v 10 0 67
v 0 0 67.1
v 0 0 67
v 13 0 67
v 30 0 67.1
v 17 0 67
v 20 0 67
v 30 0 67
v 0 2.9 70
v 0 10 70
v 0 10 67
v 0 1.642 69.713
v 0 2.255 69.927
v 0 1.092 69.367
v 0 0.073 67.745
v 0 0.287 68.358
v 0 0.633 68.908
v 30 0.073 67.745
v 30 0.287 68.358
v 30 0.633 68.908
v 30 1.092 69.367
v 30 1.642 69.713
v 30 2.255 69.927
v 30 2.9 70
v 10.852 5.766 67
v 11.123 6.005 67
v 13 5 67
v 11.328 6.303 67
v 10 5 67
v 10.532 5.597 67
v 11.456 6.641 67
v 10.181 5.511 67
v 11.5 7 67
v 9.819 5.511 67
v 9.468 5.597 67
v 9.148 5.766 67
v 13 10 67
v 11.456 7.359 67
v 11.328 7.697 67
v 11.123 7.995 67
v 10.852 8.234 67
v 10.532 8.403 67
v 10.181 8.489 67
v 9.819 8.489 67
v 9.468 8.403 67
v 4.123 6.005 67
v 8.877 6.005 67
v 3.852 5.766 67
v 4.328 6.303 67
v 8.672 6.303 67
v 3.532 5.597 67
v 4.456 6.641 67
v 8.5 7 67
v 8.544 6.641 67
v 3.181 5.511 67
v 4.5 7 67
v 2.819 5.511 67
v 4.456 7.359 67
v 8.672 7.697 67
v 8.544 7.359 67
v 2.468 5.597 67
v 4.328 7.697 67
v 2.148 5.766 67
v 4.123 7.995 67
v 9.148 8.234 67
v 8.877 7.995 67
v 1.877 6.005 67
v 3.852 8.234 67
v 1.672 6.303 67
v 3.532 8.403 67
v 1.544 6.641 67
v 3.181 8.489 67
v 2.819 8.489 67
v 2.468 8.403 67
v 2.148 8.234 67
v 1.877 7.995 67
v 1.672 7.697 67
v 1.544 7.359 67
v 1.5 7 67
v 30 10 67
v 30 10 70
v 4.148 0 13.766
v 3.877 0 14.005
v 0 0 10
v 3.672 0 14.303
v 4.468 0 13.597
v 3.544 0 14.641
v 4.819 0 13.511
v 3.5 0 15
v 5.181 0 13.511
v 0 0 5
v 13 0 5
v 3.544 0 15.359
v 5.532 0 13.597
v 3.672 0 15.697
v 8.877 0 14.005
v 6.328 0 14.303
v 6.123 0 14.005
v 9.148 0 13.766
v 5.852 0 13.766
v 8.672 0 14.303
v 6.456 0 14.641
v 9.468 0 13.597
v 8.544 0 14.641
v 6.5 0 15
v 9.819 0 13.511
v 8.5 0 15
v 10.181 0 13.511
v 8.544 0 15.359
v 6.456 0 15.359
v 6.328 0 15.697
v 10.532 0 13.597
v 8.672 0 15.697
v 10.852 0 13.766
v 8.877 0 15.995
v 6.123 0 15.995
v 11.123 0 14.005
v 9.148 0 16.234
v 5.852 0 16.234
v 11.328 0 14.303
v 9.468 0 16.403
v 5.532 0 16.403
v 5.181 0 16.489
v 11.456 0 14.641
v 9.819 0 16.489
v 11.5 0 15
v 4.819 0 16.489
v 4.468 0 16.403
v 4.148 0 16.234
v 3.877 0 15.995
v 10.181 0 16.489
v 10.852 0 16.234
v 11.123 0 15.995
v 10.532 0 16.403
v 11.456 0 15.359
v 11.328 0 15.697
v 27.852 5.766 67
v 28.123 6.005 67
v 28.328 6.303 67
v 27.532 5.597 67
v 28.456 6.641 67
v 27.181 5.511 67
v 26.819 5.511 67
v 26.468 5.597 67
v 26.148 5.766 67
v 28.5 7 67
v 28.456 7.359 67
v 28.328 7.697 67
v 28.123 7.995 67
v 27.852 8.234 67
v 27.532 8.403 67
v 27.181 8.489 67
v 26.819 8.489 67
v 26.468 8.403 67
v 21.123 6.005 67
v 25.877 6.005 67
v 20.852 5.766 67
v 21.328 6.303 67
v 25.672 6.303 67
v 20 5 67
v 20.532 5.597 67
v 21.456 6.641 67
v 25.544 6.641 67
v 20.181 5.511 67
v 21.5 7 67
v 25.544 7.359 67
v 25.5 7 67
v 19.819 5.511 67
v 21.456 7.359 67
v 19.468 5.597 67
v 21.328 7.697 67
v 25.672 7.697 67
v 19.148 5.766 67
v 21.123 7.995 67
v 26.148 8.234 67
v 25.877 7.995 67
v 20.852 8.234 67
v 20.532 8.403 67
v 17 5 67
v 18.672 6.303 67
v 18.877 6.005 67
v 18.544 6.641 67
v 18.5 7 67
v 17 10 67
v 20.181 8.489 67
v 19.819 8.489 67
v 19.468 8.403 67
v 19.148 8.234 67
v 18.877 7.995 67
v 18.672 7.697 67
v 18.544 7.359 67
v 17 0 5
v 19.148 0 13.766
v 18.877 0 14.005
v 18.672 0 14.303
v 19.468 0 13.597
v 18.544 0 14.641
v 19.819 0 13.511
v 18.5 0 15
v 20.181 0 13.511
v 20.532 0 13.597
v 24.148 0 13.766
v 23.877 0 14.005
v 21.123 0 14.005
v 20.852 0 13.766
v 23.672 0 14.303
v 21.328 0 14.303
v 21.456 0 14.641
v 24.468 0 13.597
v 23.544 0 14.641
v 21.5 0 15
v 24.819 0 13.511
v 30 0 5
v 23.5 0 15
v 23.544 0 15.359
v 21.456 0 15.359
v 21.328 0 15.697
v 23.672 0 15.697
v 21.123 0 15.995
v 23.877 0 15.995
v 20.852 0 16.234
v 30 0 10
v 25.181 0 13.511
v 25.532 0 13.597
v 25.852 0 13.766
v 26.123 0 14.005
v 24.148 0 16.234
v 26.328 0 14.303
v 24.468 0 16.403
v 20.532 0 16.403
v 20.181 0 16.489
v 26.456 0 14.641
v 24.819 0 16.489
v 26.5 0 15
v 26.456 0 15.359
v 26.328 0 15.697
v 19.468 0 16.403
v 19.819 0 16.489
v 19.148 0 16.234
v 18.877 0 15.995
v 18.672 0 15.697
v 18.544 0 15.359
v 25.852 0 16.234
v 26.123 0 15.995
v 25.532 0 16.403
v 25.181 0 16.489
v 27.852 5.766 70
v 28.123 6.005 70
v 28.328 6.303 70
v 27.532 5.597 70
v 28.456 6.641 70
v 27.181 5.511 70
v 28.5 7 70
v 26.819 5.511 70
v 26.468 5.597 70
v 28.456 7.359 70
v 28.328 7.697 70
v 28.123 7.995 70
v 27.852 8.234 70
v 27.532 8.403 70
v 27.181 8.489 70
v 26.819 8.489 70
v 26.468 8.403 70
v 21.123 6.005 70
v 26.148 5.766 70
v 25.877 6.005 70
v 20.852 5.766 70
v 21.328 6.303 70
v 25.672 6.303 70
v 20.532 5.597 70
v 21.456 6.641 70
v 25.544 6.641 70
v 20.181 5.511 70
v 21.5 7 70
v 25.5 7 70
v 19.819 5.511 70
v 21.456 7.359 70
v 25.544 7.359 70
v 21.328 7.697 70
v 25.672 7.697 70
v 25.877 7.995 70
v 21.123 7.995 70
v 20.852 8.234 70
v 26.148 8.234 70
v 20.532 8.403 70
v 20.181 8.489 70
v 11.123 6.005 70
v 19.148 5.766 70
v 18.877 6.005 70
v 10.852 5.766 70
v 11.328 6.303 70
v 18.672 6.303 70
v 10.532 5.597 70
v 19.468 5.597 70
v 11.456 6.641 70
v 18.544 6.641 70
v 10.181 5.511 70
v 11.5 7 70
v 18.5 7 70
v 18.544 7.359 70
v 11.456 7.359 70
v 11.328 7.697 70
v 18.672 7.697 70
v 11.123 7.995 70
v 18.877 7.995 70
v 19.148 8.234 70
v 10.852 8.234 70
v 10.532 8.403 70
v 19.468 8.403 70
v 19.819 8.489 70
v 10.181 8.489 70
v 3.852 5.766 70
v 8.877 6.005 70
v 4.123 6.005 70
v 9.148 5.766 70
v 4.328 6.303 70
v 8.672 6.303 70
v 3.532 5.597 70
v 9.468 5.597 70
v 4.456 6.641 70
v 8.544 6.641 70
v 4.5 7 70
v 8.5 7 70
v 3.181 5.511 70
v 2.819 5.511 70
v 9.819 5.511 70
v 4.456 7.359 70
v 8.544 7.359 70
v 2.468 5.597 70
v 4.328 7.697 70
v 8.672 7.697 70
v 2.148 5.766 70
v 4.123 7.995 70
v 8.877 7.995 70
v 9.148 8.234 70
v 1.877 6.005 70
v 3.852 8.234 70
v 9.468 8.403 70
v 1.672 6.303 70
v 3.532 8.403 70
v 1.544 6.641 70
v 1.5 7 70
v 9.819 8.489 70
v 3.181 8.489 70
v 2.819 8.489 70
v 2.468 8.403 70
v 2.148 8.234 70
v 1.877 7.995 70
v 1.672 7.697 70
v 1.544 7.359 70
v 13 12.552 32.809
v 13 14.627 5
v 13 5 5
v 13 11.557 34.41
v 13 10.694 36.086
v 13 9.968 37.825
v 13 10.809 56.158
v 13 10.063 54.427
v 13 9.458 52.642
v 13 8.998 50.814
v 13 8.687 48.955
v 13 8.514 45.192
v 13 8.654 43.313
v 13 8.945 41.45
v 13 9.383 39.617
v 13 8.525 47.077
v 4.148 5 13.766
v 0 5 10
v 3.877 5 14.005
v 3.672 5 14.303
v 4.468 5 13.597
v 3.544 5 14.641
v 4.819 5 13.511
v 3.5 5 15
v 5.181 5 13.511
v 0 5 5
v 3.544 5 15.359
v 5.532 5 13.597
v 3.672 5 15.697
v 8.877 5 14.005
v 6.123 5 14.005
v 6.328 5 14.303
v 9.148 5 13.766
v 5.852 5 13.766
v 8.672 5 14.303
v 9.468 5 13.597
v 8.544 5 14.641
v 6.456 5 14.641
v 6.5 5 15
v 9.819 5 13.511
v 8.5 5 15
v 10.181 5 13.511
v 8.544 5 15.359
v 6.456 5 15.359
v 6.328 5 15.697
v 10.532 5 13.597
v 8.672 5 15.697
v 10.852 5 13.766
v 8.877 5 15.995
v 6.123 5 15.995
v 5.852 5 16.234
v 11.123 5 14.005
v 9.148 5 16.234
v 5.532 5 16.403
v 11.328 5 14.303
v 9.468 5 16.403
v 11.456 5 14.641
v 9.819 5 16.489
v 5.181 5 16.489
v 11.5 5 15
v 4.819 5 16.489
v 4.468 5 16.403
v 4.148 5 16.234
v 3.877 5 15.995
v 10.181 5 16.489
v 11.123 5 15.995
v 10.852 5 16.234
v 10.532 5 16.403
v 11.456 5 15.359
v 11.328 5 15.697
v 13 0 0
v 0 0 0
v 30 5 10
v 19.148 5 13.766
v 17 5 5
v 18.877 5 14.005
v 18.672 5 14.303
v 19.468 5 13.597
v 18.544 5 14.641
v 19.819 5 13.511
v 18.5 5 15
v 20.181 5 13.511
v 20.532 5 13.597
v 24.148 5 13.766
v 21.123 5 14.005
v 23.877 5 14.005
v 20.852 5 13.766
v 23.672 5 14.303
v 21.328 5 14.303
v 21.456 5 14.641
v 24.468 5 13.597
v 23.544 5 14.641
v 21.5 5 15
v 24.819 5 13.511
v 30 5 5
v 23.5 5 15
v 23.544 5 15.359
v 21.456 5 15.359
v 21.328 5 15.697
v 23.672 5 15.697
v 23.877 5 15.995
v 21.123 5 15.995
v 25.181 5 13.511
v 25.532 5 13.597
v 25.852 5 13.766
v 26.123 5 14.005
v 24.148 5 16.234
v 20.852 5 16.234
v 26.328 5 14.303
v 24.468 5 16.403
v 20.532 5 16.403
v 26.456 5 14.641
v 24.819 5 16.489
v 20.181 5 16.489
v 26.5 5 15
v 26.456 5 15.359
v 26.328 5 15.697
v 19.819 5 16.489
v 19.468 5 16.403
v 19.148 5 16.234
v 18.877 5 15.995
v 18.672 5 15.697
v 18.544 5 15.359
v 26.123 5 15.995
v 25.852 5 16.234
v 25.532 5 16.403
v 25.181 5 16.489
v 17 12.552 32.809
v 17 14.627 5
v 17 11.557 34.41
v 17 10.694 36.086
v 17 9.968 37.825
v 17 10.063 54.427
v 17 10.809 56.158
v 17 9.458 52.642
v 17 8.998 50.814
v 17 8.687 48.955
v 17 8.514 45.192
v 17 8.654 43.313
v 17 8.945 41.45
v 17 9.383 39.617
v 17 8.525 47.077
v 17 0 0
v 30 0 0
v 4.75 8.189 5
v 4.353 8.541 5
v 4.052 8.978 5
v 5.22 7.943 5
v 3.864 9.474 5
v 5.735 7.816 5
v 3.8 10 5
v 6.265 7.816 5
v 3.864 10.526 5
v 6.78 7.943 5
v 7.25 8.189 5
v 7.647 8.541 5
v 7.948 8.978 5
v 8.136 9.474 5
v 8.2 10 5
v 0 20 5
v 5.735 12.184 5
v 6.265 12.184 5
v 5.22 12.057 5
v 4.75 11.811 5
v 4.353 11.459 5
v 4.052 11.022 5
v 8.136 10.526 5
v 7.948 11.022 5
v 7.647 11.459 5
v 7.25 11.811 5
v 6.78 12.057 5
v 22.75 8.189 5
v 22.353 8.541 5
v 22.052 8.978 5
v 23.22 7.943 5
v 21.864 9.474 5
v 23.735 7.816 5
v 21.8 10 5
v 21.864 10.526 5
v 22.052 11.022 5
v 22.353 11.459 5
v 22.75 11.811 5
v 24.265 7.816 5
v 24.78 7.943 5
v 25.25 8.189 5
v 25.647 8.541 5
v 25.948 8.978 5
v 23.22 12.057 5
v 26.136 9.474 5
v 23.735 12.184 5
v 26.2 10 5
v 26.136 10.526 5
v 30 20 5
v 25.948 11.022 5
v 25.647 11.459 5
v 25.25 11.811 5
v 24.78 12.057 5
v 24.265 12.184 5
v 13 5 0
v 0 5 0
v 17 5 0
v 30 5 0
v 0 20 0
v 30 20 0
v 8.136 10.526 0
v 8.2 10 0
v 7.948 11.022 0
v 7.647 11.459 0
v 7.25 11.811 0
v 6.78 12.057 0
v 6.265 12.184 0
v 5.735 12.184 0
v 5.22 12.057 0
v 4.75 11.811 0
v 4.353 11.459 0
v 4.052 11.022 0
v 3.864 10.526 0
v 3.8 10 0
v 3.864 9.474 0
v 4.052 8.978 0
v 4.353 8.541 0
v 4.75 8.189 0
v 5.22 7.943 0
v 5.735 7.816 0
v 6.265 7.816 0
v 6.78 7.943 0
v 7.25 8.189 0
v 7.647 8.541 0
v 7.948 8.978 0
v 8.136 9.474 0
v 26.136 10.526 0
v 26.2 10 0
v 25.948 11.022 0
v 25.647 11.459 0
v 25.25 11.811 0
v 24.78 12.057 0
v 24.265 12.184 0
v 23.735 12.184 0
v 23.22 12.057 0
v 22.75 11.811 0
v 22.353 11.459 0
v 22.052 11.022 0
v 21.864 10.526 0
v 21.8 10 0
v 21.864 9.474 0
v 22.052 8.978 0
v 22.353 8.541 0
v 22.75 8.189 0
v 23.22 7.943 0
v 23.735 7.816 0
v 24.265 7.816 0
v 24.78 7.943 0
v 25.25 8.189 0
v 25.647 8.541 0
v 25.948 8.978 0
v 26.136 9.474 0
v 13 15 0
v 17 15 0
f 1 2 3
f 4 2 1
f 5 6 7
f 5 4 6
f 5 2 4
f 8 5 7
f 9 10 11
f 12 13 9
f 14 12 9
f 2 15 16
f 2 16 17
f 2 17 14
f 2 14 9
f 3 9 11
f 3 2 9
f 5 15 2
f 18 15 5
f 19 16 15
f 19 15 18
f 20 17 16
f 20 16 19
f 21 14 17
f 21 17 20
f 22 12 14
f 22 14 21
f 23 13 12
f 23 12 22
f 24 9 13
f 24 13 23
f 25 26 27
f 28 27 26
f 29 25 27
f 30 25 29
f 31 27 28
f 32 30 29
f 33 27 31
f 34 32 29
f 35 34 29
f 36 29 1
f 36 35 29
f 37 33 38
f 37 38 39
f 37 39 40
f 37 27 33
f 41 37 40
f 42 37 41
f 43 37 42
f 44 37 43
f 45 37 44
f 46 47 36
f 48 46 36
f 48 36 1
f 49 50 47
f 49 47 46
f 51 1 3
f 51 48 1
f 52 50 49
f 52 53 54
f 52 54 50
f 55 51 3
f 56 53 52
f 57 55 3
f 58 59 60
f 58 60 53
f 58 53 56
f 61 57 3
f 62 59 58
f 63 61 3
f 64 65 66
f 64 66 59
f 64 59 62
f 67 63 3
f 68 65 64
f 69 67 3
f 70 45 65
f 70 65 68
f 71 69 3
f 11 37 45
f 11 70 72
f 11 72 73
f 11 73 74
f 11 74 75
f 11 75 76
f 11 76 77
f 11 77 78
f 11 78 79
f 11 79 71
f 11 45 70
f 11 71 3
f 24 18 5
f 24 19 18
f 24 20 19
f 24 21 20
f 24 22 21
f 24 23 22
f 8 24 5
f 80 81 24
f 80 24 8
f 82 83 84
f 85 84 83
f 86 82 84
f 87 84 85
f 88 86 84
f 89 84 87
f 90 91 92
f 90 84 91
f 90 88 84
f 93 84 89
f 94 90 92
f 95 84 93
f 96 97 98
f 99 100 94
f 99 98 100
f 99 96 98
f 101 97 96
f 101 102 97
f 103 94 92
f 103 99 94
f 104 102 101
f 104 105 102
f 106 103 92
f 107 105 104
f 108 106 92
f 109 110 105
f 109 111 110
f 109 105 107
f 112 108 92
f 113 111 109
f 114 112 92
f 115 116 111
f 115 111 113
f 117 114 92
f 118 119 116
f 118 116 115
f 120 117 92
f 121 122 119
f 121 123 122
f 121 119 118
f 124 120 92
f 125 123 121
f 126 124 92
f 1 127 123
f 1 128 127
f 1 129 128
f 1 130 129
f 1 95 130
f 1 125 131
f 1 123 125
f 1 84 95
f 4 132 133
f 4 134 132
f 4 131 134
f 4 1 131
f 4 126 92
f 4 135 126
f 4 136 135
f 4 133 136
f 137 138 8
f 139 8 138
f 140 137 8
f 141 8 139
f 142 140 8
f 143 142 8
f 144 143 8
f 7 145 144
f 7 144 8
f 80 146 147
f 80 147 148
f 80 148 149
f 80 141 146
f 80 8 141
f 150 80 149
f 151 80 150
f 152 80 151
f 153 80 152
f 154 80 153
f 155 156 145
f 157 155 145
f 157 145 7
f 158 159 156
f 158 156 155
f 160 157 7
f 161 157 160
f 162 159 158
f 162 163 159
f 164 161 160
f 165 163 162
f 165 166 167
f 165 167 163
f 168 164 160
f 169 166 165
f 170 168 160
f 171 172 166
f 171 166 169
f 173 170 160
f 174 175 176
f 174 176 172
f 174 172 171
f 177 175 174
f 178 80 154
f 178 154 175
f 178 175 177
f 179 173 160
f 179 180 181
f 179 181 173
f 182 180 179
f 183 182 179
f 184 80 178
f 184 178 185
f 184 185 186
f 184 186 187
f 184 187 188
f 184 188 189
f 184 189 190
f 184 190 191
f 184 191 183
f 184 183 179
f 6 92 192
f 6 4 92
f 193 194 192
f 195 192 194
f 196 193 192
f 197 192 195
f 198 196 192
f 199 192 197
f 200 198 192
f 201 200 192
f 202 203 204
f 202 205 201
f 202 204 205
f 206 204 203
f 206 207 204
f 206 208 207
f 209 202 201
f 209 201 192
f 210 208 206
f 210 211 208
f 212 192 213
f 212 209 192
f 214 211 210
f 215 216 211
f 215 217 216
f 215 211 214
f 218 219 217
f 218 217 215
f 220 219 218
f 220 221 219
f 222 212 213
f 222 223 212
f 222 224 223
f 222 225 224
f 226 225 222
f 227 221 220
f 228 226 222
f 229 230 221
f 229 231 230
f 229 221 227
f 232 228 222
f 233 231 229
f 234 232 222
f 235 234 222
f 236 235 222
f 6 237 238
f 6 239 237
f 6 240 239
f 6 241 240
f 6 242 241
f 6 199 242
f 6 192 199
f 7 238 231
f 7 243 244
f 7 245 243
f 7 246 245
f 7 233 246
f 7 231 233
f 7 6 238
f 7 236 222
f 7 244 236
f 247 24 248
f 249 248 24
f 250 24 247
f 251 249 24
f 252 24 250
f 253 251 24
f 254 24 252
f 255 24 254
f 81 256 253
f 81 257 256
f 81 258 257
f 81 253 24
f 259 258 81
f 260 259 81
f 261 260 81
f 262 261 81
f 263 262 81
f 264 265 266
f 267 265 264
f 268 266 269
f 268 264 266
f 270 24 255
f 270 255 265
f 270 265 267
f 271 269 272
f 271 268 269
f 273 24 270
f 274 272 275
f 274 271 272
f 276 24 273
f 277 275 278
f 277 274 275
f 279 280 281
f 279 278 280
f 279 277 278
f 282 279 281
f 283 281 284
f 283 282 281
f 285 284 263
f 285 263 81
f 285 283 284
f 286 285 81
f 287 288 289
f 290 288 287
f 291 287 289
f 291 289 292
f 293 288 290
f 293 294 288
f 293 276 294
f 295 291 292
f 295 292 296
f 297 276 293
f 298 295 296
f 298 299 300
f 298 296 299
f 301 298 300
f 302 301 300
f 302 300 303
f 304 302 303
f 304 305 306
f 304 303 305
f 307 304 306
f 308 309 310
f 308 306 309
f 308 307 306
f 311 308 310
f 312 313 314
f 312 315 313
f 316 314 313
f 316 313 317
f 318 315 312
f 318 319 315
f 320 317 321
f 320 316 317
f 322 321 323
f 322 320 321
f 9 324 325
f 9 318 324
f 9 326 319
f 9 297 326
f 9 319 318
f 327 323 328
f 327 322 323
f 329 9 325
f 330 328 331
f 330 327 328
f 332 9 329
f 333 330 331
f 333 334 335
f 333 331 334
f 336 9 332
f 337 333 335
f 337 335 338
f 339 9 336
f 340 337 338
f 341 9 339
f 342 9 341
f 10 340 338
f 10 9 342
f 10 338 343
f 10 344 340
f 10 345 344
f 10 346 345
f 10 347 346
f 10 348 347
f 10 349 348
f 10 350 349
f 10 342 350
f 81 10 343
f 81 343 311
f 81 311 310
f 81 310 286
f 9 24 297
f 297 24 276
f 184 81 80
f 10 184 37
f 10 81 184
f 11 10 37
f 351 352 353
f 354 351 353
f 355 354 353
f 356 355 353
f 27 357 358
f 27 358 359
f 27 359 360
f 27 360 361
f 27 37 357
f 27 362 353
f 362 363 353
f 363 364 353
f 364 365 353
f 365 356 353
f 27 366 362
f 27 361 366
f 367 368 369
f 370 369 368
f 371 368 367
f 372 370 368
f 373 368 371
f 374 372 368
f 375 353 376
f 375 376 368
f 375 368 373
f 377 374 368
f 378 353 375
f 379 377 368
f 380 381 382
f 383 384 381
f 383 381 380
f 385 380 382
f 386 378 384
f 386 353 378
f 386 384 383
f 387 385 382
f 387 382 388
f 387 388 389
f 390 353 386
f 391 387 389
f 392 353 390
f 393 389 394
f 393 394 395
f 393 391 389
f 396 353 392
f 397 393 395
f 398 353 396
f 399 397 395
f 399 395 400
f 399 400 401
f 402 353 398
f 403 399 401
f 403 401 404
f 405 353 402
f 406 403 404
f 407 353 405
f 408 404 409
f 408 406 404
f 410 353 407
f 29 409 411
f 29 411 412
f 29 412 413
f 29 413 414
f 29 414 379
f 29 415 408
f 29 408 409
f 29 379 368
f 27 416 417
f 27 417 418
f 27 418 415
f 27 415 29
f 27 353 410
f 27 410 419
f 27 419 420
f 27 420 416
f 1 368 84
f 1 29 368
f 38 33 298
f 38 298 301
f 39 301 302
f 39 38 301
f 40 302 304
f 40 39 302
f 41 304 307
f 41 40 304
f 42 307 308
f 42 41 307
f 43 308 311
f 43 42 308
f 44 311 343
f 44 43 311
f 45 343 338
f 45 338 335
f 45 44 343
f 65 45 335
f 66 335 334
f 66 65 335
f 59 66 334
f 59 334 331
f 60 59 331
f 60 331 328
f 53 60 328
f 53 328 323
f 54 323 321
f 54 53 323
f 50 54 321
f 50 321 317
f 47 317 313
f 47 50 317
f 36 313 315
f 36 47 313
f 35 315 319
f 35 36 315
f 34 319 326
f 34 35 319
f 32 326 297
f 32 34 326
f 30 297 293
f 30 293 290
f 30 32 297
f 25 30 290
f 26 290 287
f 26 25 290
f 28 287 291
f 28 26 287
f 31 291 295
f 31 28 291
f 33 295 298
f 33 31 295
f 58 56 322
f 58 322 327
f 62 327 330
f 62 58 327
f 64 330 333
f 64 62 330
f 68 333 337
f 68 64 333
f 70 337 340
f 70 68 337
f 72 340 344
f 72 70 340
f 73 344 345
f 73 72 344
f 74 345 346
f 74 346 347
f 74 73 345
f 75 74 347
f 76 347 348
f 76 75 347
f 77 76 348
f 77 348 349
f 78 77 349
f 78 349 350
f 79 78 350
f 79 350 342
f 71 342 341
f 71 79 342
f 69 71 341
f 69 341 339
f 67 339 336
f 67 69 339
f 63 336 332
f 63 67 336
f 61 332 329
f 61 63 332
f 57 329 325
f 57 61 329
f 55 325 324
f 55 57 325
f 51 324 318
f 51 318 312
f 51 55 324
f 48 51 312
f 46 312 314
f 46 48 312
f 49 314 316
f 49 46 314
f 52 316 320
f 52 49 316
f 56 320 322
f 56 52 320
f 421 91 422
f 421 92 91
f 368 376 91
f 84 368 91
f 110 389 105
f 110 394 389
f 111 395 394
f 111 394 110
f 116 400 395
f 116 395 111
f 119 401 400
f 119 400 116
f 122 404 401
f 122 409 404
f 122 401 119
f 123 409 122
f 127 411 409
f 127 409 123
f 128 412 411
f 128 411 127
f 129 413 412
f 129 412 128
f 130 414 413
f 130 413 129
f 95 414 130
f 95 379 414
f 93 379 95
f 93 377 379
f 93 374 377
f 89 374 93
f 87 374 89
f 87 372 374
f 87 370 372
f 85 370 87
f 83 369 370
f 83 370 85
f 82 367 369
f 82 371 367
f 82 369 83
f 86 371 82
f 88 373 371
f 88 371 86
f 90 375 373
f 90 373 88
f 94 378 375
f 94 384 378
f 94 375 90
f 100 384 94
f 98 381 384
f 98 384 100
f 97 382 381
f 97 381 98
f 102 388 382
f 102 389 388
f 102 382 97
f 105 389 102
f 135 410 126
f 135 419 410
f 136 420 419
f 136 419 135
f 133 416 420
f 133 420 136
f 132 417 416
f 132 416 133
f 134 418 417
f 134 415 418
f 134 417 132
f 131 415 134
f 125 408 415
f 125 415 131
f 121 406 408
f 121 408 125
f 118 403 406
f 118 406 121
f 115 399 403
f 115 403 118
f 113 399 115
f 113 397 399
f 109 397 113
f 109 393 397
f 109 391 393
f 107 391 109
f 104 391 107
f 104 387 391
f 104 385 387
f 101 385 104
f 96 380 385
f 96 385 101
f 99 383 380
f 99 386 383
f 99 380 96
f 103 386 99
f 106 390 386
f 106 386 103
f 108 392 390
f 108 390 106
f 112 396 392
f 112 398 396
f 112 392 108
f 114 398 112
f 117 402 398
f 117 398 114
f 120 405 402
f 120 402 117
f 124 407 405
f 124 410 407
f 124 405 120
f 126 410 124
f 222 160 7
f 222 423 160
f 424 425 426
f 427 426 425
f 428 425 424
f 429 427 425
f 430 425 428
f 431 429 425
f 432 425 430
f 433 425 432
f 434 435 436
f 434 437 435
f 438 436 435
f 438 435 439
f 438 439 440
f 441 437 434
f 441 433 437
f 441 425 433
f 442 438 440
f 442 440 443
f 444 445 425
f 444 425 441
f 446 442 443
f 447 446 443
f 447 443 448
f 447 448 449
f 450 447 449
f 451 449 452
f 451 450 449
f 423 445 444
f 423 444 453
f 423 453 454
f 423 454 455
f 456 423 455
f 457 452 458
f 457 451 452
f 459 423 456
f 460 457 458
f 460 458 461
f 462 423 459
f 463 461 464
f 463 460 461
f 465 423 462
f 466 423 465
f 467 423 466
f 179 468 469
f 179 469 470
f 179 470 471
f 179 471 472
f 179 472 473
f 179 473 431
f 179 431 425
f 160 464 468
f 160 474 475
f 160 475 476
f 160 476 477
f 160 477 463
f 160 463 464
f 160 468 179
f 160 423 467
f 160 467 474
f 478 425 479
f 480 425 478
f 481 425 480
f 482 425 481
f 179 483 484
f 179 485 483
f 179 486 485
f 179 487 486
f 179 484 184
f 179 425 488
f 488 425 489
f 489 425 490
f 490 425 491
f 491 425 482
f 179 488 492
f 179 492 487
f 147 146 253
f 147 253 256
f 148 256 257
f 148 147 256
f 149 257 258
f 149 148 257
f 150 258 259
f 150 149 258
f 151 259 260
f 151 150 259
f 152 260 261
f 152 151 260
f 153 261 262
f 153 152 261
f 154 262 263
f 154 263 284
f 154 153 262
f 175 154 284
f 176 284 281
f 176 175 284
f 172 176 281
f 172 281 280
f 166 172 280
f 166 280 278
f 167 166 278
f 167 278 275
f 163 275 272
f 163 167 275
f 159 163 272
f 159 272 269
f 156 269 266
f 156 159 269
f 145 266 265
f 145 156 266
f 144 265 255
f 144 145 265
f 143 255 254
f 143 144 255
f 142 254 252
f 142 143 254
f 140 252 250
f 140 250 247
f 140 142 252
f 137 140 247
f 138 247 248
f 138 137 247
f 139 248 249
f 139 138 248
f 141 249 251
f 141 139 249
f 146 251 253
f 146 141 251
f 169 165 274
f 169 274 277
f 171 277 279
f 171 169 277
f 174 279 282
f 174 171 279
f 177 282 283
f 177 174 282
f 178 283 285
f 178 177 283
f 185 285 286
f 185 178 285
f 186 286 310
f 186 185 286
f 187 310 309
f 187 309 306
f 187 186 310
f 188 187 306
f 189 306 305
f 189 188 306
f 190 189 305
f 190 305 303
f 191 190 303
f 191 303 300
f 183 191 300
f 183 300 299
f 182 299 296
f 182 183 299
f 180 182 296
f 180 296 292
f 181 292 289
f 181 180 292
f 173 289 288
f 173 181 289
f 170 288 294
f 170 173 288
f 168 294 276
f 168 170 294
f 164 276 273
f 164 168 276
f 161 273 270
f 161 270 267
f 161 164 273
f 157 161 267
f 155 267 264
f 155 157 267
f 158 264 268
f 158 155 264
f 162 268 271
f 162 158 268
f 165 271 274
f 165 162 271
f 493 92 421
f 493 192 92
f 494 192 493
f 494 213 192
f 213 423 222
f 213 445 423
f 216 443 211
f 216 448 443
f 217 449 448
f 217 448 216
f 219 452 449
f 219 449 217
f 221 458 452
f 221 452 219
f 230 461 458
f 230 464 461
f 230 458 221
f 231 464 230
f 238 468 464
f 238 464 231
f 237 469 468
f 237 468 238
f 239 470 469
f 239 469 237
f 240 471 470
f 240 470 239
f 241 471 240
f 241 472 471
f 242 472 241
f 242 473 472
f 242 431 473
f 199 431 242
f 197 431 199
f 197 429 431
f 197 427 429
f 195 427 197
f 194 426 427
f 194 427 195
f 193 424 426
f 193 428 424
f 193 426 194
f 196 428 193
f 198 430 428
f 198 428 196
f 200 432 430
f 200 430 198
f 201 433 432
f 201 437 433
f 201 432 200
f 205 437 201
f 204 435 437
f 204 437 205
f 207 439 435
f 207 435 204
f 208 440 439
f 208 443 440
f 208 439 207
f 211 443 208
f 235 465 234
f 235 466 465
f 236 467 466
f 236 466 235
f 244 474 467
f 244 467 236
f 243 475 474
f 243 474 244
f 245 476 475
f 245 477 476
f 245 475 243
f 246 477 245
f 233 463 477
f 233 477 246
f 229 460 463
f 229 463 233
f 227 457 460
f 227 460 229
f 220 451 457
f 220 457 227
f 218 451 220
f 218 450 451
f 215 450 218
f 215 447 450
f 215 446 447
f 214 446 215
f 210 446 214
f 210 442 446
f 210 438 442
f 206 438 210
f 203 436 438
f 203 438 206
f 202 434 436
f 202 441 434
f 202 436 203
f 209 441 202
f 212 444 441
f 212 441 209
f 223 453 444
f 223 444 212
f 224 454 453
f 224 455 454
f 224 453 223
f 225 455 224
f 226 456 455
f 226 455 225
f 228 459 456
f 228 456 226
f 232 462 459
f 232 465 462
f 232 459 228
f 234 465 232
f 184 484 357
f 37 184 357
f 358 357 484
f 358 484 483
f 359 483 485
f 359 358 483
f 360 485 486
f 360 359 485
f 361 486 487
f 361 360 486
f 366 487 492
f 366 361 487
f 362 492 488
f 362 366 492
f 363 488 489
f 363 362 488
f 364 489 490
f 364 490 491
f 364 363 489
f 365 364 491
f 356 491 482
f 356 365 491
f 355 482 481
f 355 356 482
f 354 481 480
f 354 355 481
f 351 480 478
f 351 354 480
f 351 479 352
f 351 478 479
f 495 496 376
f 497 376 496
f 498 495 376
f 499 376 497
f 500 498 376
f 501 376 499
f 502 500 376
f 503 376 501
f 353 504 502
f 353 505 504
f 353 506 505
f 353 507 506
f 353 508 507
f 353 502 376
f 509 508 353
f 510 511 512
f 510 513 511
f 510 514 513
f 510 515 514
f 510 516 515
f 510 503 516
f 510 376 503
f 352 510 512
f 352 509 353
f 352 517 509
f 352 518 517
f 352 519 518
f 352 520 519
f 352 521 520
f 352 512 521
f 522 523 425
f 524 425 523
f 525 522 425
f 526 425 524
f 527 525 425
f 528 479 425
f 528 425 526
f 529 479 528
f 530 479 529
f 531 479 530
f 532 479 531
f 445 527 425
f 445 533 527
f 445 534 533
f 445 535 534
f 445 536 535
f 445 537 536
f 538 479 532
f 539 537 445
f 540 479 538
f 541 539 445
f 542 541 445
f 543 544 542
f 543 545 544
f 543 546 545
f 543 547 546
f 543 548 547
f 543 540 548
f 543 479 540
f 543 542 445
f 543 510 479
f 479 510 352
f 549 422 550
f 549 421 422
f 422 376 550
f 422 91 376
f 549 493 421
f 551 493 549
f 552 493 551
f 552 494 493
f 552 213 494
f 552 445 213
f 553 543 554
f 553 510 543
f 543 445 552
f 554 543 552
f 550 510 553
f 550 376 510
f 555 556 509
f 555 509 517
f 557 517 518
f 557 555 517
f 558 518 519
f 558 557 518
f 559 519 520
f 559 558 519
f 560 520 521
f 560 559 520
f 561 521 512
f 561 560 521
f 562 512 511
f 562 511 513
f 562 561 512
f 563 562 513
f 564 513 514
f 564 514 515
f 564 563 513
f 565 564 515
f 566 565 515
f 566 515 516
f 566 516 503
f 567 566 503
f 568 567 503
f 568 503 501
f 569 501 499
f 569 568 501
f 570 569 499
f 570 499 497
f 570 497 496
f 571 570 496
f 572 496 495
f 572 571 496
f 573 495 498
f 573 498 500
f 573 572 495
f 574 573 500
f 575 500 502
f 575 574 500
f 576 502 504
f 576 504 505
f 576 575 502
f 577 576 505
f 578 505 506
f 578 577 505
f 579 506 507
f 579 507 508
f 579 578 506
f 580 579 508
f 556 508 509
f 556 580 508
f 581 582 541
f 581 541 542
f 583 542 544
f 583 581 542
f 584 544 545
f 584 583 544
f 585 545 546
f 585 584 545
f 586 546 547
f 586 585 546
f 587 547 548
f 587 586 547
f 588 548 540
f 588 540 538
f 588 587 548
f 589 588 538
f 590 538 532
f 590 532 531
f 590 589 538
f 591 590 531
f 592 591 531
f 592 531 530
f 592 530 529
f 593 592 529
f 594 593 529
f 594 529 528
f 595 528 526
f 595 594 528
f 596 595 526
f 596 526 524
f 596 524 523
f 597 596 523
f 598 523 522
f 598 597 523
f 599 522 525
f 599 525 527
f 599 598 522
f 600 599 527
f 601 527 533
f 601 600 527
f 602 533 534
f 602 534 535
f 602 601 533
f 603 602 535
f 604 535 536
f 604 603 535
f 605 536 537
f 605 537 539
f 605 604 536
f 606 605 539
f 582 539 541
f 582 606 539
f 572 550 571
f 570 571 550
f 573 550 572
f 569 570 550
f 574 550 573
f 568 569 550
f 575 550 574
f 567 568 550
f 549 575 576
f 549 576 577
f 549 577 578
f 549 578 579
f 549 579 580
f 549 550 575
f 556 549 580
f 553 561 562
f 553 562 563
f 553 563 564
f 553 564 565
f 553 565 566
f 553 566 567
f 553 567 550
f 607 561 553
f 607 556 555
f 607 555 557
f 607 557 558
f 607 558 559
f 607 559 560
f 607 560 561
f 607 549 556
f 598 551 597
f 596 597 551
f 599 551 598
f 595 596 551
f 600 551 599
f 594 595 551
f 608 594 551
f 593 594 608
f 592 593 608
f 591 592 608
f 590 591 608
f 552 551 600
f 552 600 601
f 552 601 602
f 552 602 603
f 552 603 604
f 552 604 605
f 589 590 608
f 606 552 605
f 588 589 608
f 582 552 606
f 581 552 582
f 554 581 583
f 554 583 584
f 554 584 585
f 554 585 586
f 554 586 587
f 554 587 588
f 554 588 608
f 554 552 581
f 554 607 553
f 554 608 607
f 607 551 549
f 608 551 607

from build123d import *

# Parameters (mm, degrees)
SKETCH_W     = 30
SKETCH_H     = 20
SKETCH_R     = 2.2
PAD_DEPTH    = 5
SKETCH001_R  = 1.5
PAD001_DEPTH = 5
SKETCH002_W  = 30
SKETCH002_H  = 10
SKETCH002_R  = 1.5
PAD002_DEPTH = 3
PAD003_DEPTH = 2
FILLET_R     = 2.9


with BuildPart() as part:
    # Sketch → Pad (new body)
    with BuildSketch(Plane.XY):
        with Locations((15, 10)):
            Rectangle(SKETCH_W, SKETCH_H)
        with Locations((6, 10)):
            Circle(SKETCH_R, mode=Mode.SUBTRACT)
        with Locations((24, 10)):
            Circle(SKETCH_R, mode=Mode.SUBTRACT)
    extrude(amount=PAD_DEPTH)

    # Sketch001 → Pad001 (join)
    with BuildSketch(Plane.XZ):
        Polygon((0, 0), (0, 10), (10, 67), (20, 67), (30, 10), (30, 0), align=None)
        with Locations((5, 15)):
            Circle(SKETCH001_R, mode=Mode.SUBTRACT)
        with Locations((10, 15)):
            Circle(SKETCH001_R, mode=Mode.SUBTRACT)
        with Locations((20, 15)):
            Circle(SKETCH001_R, mode=Mode.SUBTRACT)
        with Locations((25, 15)):
            Circle(SKETCH001_R, mode=Mode.SUBTRACT)
    extrude(amount=-PAD001_DEPTH)

    # Sketch002 → Pad002 (join)
    with BuildSketch(Plane.XY.offset(67)):
        with Locations((15, 5)):
            Rectangle(SKETCH002_W, SKETCH002_H)
        with Locations((3, 7)):
            Circle(SKETCH002_R, mode=Mode.SUBTRACT)
        with Locations((10, 7)):
            Circle(SKETCH002_R, mode=Mode.SUBTRACT)
        with Locations((20, 7)):
            Circle(SKETCH002_R, mode=Mode.SUBTRACT)
        with Locations((27, 7)):
            Circle(SKETCH002_R, mode=Mode.SUBTRACT)
    extrude(amount=PAD002_DEPTH)

    # Sketch003 → Pad003 (join, symmetric)
    with BuildSketch(Plane.YZ.offset(15)):
        with BuildLine():
            Line((0, 0), (15, 0))
            Line((15, 0), (12.551586, 32.808745))
            ThreePointArc((10.80907, 56.158468), (8.565166, 44.251132), (12.551586, 32.808745))
            Line((10.80907, 56.158468), (10, 67))
            Line((10, 67), (0, 67))
            Line((0, 67), (0, 0))
        make_face()
    extrude(amount=PAD003_DEPTH, both=True)

    # Fillet
    fillet_edges = [part.edges().sort_by_distance(p)[0] for p in [
        (15, 0, 70),
    ]]
    fillet(fillet_edges, radius=FILLET_R)


solid = part.part
